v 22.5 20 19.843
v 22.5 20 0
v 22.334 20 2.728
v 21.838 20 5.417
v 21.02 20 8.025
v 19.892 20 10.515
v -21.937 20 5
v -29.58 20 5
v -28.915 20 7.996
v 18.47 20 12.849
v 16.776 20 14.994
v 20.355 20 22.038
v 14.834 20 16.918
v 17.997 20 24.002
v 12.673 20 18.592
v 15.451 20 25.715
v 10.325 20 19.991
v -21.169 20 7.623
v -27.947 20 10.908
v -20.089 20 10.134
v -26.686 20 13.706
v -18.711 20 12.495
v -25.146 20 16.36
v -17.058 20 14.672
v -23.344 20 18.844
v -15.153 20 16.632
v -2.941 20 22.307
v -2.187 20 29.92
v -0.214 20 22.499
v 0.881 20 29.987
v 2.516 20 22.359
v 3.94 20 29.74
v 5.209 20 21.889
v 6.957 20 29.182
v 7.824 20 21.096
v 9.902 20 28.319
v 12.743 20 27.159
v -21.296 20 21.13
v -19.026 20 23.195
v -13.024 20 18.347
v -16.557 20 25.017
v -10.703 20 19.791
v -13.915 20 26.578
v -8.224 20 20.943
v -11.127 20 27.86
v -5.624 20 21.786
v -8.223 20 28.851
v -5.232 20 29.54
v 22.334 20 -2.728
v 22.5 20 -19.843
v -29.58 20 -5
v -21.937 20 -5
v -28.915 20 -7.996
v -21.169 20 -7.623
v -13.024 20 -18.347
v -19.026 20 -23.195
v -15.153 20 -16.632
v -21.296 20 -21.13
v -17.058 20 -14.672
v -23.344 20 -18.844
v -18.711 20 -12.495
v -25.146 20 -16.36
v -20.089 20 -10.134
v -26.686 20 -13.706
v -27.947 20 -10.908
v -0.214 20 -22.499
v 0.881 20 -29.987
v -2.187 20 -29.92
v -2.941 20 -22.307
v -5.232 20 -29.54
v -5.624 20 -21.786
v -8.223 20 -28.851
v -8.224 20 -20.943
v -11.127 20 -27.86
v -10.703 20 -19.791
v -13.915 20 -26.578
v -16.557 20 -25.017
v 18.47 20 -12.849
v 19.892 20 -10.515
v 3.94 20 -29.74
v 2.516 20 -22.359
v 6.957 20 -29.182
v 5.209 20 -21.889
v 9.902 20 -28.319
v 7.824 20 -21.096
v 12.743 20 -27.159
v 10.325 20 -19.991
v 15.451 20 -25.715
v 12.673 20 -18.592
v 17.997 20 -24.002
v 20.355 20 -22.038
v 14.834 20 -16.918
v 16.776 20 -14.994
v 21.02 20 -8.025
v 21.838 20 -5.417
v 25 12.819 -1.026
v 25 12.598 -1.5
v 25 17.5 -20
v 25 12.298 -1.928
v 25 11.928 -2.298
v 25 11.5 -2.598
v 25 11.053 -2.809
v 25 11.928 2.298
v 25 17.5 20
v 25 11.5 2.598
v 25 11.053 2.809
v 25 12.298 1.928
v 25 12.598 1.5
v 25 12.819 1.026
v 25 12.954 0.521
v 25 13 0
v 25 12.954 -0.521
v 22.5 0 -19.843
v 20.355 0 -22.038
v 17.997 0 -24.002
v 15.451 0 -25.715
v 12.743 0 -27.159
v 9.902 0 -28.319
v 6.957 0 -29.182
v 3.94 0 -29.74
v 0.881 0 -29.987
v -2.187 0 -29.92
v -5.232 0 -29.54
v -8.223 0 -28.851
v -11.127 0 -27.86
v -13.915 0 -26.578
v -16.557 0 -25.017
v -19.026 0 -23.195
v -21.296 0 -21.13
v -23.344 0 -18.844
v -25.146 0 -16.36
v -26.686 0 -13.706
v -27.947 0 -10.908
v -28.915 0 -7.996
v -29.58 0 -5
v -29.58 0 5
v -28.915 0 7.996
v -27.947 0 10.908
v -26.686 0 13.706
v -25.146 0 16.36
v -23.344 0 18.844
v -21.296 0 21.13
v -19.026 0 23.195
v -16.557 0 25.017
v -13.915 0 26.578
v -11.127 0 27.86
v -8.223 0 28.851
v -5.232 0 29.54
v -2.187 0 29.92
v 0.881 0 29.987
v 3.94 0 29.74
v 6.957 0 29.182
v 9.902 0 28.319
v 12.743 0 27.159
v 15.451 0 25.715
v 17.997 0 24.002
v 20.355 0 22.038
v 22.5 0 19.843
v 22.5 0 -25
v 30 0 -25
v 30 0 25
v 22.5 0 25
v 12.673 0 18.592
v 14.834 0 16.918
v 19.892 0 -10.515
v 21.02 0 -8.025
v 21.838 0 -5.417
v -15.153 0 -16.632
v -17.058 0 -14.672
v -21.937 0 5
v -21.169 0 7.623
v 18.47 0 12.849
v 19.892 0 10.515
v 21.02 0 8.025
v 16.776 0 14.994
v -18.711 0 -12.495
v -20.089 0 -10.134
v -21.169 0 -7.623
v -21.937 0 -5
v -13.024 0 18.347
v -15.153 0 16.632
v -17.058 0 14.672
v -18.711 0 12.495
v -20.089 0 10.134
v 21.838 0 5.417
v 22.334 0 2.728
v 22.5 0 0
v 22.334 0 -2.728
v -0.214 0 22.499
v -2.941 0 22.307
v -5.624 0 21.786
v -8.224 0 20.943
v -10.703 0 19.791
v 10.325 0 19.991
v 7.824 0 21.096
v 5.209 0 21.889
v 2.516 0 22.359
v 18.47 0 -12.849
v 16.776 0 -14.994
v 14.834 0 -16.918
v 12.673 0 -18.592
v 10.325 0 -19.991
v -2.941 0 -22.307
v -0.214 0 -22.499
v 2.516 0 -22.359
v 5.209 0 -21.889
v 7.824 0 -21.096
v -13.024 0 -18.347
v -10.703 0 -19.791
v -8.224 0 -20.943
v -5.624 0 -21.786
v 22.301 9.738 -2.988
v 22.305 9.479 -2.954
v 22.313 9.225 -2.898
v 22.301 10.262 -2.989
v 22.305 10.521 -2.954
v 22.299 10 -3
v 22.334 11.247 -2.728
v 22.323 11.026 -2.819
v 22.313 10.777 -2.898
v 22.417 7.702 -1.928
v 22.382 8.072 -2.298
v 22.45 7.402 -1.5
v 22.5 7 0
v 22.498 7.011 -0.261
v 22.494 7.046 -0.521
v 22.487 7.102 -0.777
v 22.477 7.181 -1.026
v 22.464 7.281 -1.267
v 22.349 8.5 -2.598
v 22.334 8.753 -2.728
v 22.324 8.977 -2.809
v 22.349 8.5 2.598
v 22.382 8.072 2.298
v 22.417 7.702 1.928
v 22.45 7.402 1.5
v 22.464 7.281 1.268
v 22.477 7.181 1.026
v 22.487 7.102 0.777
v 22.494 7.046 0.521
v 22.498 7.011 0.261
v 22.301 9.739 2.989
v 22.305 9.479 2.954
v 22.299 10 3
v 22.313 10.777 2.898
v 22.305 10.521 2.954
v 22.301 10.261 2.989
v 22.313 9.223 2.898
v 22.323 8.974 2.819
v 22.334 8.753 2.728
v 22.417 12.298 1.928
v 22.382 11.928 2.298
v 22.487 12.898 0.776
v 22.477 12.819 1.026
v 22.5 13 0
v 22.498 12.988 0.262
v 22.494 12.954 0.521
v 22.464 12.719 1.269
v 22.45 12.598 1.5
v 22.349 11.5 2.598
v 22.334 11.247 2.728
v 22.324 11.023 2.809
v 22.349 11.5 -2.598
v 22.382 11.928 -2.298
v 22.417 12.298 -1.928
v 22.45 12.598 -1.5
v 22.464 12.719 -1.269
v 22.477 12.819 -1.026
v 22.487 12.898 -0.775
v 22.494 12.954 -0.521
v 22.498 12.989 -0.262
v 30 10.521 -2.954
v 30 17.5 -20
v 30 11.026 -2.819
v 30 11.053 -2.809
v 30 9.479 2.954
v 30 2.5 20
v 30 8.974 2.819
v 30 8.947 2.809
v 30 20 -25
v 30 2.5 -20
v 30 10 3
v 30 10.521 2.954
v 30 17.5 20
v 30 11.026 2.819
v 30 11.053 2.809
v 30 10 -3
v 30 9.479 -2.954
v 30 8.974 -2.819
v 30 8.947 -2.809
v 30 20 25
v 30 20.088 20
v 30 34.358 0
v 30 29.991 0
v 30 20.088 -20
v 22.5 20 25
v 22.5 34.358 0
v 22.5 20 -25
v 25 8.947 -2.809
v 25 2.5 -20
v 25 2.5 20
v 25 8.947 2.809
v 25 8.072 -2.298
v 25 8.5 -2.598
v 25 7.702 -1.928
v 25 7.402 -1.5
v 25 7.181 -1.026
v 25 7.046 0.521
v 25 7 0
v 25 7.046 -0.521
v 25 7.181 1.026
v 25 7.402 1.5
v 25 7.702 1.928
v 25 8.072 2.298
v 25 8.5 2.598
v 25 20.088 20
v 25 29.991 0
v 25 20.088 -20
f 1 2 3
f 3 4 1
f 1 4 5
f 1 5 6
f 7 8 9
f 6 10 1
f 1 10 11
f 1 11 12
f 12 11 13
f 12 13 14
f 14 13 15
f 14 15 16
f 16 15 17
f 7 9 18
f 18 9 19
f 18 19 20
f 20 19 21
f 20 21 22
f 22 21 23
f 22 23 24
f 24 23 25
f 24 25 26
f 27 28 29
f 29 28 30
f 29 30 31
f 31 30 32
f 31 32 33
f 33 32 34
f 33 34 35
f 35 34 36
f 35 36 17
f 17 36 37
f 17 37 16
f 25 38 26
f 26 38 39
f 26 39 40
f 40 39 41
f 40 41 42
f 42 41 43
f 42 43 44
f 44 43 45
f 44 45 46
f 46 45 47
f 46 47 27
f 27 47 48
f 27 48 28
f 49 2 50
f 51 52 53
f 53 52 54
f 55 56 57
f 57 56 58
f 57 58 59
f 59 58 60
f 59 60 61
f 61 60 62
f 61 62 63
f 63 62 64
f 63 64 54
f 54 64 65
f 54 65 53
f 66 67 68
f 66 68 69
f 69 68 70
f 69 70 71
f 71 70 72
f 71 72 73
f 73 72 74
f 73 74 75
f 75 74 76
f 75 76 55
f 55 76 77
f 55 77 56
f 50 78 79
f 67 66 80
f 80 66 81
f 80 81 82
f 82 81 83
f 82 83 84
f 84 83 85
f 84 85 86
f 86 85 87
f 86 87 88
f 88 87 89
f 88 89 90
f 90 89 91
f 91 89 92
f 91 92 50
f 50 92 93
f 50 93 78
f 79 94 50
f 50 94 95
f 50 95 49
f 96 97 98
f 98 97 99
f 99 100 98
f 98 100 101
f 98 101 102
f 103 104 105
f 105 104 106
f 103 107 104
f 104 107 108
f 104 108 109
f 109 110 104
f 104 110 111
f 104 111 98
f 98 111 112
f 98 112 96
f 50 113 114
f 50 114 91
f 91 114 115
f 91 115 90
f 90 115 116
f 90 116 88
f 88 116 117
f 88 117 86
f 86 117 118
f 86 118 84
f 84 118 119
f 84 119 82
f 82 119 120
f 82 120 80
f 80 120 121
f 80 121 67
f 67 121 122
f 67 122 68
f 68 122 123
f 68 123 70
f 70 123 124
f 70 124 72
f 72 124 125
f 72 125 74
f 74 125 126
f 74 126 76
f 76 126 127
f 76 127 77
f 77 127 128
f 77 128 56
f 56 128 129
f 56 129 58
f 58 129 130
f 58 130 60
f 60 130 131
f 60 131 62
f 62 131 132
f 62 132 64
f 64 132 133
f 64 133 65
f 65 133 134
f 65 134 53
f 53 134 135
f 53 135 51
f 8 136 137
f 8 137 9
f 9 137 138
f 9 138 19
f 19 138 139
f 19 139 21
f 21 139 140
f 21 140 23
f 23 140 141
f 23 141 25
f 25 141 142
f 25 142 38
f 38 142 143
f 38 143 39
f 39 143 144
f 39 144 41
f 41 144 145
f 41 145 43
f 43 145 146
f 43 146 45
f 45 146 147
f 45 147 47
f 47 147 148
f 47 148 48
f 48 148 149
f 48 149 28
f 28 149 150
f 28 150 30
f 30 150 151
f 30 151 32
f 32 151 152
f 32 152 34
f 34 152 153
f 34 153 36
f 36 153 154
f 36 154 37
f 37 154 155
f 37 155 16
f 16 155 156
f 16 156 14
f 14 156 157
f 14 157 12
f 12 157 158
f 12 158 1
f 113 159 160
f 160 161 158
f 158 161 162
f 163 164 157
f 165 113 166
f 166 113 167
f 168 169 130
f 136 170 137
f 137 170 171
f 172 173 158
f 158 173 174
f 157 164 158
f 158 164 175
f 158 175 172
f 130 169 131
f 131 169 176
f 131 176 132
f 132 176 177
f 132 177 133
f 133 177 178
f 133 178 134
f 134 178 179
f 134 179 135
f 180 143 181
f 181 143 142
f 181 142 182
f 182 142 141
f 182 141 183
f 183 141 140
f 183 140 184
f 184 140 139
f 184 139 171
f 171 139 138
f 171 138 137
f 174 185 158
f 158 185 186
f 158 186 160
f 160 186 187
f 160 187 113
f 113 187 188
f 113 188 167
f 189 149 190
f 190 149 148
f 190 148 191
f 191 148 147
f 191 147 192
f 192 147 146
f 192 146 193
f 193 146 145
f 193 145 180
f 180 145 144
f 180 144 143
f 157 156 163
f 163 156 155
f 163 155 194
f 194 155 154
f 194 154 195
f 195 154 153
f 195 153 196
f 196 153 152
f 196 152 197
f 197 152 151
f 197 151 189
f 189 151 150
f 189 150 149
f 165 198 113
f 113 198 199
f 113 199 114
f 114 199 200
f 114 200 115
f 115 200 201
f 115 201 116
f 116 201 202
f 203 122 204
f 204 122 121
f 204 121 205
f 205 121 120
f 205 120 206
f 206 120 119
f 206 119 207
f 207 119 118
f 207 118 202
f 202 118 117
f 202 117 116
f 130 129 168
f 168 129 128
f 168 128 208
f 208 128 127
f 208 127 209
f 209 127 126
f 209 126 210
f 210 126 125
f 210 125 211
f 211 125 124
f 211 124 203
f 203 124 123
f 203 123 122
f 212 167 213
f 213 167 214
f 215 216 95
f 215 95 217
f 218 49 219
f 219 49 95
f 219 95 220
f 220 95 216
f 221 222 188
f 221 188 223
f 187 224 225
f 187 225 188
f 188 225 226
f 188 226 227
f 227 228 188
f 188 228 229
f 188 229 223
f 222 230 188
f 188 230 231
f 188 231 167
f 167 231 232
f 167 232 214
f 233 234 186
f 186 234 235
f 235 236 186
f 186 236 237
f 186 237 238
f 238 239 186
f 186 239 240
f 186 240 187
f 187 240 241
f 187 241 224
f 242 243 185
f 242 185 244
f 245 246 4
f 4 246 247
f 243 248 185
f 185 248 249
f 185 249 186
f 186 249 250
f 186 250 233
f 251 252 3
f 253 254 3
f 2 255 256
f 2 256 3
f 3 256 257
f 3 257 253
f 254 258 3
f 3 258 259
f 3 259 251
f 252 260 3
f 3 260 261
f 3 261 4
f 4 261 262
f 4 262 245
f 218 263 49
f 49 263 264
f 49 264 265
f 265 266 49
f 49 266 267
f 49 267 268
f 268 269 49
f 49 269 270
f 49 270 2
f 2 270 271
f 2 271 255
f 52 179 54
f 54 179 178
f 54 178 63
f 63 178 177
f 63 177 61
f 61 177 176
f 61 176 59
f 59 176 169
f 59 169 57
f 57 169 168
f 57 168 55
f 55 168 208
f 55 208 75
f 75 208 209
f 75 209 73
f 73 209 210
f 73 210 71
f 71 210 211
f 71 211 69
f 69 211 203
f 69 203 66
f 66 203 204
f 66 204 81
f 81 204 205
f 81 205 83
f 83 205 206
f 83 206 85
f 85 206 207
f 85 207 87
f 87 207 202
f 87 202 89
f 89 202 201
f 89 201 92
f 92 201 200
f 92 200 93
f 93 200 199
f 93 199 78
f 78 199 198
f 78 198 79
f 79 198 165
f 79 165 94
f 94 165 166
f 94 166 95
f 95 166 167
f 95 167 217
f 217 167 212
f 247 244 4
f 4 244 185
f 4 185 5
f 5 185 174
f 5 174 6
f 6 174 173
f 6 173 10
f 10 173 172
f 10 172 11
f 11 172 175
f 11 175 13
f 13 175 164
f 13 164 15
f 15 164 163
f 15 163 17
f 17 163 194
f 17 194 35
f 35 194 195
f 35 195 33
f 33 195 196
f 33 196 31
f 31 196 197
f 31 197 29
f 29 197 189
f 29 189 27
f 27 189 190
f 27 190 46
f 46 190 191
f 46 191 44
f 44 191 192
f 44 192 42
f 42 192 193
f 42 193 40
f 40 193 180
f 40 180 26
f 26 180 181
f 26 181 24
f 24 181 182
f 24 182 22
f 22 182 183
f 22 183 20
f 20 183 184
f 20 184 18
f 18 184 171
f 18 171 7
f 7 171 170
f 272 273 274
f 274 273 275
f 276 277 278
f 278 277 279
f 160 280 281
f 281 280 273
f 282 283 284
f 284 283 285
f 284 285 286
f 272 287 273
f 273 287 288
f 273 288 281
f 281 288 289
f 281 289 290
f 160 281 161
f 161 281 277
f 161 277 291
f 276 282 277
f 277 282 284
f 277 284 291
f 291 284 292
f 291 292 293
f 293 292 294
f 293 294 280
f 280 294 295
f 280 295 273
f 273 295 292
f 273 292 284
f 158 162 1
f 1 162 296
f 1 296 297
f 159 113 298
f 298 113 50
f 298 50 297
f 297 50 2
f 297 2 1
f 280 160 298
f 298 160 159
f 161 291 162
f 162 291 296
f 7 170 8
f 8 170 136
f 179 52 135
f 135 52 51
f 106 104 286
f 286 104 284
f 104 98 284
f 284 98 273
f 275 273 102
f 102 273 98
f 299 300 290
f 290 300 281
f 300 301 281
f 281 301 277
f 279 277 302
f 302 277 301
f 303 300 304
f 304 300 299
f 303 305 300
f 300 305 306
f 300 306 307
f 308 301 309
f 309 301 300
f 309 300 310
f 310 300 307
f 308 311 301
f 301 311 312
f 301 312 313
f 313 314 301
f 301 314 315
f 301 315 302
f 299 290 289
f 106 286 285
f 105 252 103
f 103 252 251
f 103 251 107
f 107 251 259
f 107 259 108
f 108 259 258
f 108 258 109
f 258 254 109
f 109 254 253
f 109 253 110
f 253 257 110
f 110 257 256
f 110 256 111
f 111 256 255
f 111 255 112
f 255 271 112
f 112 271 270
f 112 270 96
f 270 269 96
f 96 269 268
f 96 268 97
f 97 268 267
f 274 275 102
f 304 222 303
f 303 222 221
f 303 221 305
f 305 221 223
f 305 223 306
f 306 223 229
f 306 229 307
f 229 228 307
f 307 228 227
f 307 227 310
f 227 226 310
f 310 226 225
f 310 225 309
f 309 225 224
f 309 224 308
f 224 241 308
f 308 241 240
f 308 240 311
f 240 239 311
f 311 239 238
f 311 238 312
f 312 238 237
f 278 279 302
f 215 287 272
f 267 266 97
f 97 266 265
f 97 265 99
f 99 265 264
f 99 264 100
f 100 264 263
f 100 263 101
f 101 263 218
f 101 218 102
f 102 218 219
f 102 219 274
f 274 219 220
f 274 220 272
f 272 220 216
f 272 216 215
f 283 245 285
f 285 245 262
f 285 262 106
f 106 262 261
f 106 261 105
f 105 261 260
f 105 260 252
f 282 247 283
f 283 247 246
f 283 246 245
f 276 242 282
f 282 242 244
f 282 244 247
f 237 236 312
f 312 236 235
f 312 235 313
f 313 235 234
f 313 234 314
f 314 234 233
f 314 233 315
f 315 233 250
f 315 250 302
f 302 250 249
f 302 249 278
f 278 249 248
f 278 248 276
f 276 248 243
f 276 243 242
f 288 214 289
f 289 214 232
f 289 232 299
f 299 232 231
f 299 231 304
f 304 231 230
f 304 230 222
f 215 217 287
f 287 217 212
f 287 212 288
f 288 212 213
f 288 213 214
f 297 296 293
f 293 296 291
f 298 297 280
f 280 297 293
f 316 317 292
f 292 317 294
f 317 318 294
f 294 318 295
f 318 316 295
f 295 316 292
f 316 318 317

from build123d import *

# Parameters (mm, degrees)
SKETCH1_R           = 30
SKETCH1_R_2         = 22.5
BOSS_EXTRUDE1_DEPTH = 20
SKETCH2_W           = 50
SKETCH2_H           = 20
BOSS_EXTRUDE2_DEPTH = 7.5
SKETCH4_W           = 14.39860727
SKETCH4_H           = 10
CUT_EXTRUDE1_DEPTH  = 20
CUT_EXTRUDE3_DEPTH  = 5
SKETCH8_R           = 3
CUT_EXTRUDE4_DEPTH  = 10
BOSS_EXTRUDE3_DEPTH = 7.5
CUT_EXTRUDE5_DEPTH  = 5


with BuildPart() as part:
    # Sketch1 → Boss-Extrude1 (new body)
    with BuildSketch(Plane(origin=(0, 0, 0), x_dir=(1, 0, 0), z_dir=(0, 1, 0))):
        with Locations(Location((0, 0, 0), (0, 0, 270))):
            Circle(SKETCH1_R)
        with Locations(Location((0, 0, 0), (0, 0, 270))):
            Circle(SKETCH1_R_2, mode=Mode.SUBTRACT)
    extrude(amount=BOSS_EXTRUDE1_DEPTH)

    # Sketch2 → Boss-Extrude2 (add)
    with BuildSketch(Plane(origin=(22.5, 0, 0), x_dir=(0, 0, -1), z_dir=(1, 0, 0))):
        with Locations((0, 10)):
            Rectangle(SKETCH2_W, SKETCH2_H)
    extrude(amount=BOSS_EXTRUDE2_DEPTH)

    # Sketch4 → Cut-Extrude1 (cut)
    with BuildSketch(Plane(origin=(0, 0, 0), x_dir=(1, 0, 0), z_dir=(0, 1, 0))):
        with Locations((-26.790895642, 0)):
            Rectangle(SKETCH4_W, SKETCH4_H)
    extrude(amount=CUT_EXTRUDE1_DEPTH, mode=Mode.SUBTRACT)

    # Sketch7 → Cut-Extrude3 (cut)
    with BuildSketch(Plane(origin=(30, 0, 0), x_dir=(0, 0, -1), z_dir=(1, 0, 0))):
        Polygon((-1, 9.625), (-20, 2.5), (20, 2.5), (1, 9.625), (1, 10.375), (20, 17.5), (-20, 17.5), (-1, 10.375), align=None)
    extrude(amount=-CUT_EXTRUDE3_DEPTH, mode=Mode.SUBTRACT)

    # Sketch8 → Cut-Extrude4 (cut)
    with BuildSketch(Plane(origin=(30, 0, 0), x_dir=(0, 0, -1), z_dir=(1, 0, 0))):
        with Locations((0, 10)):
            Circle(SKETCH8_R)
    extrude(amount=-CUT_EXTRUDE4_DEPTH, mode=Mode.SUBTRACT)

    # Sketch9 → Boss-Extrude3 (add)
    with BuildSketch(Plane(origin=(30, 0, 0), x_dir=(0, 0, -1), z_dir=(1, 0, 0))):
        Polygon((-25, 20), (0, 34.357764991), (25, 20), align=None)
    extrude(amount=-BOSS_EXTRUDE3_DEPTH)

    # Sketch10 → Cut-Extrude5 (cut)
    with BuildSketch(Plane(origin=(30, 0, 0), x_dir=(0, 0, -1), z_dir=(1, 0, 0))):
        Polygon((-20, 20.088403301), (20, 20.088403301), (0, 29.990964176), align=None)
    extrude(amount=-CUT_EXTRUDE5_DEPTH, mode=Mode.SUBTRACT)


solid = part.part
